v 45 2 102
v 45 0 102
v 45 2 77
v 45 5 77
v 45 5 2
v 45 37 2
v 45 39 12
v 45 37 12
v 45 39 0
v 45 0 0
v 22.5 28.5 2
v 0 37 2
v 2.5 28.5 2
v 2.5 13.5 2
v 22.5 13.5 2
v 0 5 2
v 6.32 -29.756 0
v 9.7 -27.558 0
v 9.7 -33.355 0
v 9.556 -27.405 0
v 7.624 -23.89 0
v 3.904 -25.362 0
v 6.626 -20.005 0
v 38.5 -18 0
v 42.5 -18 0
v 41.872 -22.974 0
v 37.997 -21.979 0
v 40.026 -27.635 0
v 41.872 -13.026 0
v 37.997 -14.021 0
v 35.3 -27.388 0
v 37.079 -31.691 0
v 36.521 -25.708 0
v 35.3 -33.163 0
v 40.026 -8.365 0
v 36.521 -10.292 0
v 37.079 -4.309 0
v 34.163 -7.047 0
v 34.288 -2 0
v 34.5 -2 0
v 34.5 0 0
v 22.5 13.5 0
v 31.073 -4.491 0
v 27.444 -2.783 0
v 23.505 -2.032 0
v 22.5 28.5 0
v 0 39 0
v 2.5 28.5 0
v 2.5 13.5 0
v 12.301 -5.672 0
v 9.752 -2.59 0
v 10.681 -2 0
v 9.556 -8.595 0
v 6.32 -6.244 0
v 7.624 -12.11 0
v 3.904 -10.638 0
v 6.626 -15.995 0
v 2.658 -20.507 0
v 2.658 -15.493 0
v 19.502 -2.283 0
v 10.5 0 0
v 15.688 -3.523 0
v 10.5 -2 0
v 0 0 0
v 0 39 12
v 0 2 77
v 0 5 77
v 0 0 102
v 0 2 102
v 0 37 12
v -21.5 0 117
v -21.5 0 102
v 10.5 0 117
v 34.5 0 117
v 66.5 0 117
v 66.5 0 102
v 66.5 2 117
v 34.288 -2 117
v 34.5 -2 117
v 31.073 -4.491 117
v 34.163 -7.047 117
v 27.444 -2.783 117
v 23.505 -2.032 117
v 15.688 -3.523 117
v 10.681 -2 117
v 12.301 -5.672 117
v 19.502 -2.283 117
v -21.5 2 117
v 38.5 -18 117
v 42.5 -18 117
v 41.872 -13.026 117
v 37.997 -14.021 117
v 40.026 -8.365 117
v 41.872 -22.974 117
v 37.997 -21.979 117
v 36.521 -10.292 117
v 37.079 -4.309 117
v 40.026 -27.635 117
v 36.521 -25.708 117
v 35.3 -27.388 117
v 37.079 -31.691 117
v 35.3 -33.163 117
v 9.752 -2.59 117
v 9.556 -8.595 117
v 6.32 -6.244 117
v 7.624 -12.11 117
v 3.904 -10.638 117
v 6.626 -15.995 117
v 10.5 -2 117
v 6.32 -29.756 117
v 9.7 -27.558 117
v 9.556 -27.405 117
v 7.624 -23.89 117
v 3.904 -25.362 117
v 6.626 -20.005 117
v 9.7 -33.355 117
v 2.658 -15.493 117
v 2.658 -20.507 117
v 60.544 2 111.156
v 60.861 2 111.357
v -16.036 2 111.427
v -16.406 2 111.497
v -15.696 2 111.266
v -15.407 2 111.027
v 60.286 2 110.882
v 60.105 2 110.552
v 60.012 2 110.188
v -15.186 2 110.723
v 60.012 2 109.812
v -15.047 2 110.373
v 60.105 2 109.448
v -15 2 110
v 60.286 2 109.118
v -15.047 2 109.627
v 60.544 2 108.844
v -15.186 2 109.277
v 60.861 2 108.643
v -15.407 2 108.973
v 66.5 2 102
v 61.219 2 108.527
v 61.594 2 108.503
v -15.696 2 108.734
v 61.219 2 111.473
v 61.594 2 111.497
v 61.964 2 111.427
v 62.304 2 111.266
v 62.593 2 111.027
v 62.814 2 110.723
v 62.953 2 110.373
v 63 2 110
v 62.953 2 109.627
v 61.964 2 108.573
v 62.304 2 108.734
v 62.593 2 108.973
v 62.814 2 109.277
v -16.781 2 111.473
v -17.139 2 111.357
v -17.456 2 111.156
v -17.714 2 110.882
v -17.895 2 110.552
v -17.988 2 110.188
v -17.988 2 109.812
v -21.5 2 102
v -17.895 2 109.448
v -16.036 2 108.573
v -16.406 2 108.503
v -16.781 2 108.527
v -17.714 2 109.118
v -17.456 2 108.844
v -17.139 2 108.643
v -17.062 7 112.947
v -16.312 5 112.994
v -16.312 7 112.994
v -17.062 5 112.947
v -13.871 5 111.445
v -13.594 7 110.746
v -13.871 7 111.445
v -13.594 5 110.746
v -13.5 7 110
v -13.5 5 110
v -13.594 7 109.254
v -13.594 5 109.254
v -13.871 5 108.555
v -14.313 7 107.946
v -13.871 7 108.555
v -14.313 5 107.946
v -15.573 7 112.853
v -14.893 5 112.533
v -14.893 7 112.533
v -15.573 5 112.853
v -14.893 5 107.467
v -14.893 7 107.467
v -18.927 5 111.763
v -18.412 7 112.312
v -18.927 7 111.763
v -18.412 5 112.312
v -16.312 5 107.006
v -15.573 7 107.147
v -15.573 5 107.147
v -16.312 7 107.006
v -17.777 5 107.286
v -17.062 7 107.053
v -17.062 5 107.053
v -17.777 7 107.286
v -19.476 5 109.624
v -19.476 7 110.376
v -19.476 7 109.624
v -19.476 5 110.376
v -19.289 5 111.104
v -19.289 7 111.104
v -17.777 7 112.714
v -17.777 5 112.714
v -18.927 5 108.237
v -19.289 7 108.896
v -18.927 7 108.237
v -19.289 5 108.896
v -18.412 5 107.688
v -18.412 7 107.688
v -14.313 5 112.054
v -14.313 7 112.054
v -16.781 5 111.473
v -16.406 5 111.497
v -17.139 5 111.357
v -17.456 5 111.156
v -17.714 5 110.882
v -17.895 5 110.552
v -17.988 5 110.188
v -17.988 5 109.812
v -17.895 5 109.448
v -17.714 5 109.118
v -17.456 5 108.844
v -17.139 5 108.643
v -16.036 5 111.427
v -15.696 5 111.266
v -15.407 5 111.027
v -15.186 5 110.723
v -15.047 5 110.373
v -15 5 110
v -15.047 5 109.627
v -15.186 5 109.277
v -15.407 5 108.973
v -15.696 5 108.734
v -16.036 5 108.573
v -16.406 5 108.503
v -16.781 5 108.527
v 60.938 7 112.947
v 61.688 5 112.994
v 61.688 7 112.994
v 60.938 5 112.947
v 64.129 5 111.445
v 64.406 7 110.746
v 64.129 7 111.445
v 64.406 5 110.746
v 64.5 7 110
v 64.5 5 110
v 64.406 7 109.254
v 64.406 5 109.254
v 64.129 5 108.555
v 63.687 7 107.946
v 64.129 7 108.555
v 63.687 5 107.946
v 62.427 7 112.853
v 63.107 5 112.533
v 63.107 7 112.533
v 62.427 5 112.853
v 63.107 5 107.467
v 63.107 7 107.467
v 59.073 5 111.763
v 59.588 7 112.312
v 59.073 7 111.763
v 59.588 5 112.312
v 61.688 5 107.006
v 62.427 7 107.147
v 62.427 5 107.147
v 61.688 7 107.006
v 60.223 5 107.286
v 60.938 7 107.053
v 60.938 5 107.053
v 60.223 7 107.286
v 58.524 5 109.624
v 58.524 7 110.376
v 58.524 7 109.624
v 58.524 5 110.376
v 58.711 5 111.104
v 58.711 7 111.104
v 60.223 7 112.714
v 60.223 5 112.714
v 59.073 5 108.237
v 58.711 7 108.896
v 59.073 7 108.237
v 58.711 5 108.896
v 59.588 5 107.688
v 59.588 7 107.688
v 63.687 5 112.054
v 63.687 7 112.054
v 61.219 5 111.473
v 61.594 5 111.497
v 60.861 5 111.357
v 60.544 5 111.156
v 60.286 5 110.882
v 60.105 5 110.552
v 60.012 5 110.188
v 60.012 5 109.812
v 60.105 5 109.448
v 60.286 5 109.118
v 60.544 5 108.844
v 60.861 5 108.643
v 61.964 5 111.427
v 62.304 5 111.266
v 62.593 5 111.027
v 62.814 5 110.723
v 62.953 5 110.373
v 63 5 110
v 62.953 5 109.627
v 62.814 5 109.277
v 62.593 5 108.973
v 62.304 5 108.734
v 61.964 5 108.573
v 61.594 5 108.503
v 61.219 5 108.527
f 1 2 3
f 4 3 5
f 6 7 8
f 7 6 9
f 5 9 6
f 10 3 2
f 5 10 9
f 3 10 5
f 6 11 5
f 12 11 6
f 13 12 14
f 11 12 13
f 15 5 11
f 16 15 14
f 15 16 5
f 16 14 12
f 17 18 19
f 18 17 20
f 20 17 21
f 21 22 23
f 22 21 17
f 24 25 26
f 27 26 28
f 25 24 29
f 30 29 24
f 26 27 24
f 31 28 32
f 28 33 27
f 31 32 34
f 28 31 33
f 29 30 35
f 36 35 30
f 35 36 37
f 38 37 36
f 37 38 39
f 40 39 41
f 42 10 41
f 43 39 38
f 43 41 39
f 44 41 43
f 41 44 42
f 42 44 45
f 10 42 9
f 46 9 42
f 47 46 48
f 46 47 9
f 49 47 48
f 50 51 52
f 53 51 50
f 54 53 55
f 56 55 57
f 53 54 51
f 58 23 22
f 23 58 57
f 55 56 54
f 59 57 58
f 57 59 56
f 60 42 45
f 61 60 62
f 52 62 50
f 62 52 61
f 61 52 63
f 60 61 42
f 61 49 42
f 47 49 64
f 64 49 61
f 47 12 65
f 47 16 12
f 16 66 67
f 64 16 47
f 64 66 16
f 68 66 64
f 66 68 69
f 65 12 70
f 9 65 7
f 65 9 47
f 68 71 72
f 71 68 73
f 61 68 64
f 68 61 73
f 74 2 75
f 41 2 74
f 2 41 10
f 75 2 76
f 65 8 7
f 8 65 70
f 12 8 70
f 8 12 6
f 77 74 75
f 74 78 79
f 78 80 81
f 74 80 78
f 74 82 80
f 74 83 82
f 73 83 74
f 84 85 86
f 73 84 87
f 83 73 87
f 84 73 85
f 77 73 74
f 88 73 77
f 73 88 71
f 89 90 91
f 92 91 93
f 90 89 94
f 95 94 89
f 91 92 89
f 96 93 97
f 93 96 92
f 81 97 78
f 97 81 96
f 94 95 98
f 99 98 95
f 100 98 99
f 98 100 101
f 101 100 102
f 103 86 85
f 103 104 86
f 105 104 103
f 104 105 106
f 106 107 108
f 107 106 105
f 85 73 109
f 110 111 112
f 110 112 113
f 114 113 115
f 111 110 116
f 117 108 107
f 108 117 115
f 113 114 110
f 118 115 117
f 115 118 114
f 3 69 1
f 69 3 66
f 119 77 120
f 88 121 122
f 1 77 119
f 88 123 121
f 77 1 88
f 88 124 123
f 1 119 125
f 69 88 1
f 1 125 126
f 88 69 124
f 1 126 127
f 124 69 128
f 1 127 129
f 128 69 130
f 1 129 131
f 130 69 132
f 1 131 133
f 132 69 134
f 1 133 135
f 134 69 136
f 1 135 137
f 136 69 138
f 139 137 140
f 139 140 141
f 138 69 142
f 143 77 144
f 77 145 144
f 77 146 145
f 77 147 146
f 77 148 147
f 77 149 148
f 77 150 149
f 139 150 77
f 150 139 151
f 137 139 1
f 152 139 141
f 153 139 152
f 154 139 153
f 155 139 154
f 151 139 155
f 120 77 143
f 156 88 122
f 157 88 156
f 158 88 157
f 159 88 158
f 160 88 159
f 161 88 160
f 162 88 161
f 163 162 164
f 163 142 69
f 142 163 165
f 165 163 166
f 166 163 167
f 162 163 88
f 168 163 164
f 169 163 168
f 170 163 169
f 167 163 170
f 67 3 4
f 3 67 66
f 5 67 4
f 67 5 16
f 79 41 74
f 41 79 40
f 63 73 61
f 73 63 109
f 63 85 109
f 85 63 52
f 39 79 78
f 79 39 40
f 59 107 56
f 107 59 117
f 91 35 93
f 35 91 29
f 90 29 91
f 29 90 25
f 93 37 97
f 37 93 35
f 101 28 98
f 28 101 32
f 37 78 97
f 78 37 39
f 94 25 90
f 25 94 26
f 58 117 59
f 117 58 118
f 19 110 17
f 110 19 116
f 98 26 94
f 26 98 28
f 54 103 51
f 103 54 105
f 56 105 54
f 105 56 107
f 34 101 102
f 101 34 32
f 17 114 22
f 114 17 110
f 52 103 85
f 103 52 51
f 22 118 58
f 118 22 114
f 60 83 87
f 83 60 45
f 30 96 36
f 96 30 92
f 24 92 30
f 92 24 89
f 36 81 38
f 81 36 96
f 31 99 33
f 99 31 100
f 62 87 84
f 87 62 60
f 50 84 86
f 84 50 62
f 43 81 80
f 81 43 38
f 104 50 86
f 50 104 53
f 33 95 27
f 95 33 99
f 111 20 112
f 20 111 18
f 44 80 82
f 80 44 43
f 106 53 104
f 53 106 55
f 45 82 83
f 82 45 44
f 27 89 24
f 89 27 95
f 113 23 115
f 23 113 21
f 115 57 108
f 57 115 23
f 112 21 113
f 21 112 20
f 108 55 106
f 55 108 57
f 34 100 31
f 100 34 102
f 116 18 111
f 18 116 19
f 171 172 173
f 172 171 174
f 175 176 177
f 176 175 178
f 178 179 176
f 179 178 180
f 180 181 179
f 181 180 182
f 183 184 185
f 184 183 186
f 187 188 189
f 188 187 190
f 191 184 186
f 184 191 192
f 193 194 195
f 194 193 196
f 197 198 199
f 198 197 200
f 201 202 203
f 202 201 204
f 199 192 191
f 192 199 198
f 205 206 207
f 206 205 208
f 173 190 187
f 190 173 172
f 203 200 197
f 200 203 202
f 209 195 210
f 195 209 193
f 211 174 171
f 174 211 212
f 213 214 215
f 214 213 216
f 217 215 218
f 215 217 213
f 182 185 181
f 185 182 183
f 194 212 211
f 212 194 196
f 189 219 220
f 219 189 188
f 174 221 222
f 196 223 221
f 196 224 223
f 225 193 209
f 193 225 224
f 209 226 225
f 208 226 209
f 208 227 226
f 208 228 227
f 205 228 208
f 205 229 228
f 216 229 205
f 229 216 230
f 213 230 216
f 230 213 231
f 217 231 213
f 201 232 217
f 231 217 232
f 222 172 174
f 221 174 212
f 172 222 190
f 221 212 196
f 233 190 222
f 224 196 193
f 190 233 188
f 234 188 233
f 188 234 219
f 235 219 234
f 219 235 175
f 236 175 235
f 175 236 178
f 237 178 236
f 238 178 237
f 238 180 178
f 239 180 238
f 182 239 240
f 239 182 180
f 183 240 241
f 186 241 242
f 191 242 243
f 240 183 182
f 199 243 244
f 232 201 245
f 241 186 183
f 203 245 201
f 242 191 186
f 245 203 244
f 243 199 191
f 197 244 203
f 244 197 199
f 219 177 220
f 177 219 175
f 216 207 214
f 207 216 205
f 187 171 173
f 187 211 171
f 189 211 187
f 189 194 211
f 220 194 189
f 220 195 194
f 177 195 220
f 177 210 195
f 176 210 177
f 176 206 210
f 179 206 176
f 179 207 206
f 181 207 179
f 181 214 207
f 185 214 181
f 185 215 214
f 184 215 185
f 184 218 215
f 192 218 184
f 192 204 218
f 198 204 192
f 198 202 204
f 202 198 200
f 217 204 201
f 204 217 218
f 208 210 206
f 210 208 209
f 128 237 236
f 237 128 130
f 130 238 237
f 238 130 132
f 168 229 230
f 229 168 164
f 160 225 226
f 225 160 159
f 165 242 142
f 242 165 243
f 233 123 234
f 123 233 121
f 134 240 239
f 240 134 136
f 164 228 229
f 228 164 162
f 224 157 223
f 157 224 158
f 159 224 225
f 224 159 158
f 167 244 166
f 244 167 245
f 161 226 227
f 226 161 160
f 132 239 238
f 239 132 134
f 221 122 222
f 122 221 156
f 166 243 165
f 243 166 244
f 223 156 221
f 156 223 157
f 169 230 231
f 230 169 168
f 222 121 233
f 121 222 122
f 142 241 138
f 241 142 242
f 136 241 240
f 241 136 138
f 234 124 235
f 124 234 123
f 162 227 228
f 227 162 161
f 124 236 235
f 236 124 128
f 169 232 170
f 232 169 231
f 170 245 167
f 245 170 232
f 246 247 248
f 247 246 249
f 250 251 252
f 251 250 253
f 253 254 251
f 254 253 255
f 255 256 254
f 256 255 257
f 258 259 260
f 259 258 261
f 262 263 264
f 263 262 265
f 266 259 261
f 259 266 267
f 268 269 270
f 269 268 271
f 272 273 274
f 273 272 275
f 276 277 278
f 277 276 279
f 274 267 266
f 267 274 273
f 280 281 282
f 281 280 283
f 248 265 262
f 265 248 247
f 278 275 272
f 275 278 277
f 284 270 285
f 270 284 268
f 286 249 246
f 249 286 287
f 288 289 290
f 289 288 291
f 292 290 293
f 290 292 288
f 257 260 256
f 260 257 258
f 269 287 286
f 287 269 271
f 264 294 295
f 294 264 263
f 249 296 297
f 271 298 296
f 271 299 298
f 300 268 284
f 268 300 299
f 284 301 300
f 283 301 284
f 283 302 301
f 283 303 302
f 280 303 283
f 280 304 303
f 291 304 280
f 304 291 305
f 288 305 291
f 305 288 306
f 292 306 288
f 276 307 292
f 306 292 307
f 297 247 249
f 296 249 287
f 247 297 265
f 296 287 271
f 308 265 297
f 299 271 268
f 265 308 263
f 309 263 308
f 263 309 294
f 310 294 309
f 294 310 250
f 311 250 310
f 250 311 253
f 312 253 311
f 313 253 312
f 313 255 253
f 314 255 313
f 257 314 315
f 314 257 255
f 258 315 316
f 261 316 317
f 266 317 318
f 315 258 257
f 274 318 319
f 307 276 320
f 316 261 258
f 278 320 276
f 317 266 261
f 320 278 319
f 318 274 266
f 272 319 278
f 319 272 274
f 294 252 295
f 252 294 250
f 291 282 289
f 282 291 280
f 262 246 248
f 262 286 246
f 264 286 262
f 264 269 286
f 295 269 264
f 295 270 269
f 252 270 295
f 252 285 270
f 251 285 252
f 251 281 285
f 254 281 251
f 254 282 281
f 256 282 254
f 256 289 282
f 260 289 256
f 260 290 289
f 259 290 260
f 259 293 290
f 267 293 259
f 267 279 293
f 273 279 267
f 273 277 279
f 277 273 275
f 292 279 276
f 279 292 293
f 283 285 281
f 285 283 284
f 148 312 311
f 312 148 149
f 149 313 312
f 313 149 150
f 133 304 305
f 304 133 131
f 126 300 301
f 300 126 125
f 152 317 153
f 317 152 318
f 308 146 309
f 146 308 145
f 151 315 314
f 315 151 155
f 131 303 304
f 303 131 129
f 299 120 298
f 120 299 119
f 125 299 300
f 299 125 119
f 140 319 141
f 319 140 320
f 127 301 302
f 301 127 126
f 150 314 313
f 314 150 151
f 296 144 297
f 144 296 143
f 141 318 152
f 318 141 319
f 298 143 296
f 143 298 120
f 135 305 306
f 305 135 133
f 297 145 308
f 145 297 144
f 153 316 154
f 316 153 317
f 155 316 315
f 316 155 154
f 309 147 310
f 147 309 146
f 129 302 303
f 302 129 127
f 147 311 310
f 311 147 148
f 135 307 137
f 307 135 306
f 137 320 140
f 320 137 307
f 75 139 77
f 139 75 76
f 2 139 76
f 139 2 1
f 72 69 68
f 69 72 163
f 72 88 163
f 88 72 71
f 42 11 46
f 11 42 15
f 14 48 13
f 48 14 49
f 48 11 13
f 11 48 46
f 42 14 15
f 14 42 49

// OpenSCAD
$fn = 25;

thickness = 2;
height = 115;

top_width = 88;
top_height = 15;

bottom_width = 45;
bottom_height = 10;
bottom_depth = 35;
bottom_cutout = 3;
bottom_cutout_height = 75;

pipe_radius = 16;

keyhole_bottom_width = 6;
keyhole_top_width = 3;
keyhole_depth = 3;
keyhole_height = 110;
keyhole_spacing = 78;

encoder_cutout_length = 20;
encoder_cutout_width = 15;
// Encoder cutout is not perfectly positioned, but it has enough margin that cables can fit.
// encoder_cutout_off_center = 5;

module base() {
    cube([bottom_width, bottom_depth+2*thickness, thickness]);
    translate([0, bottom_depth+thickness, 0])
        cube([bottom_width, thickness, bottom_height+thickness]);
    cube([bottom_width, thickness, height+thickness]);
    translate([0, thickness,0])
        cube([bottom_width, bottom_cutout, bottom_cutout_height+thickness]);
    translate([bottom_width/2 - pipe_radius*.75, -thickness, 0])
        cube([pipe_radius*1.5, thickness, height+thickness]);
}

module top() {
    cube([top_width, thickness, top_height]);
}

module pipe_clamp() {
    difference() {
        cylinder(h = height+thickness, r = pipe_radius + 2*thickness);
        cylinder(h = height+thickness, r = pipe_radius);
        cutout_width = pipe_radius*1.6;
        translate([-cutout_width/2, -pipe_radius-5*thickness, 0])
            cube([cutout_width, 10*thickness, height+thickness]);
    }
}

module keyhole() {
    translate([0,2*thickness+keyhole_depth, 0])
    rotate(v=[1,0,0], a=90) {
        cylinder(h = thickness, d = keyhole_bottom_width);
        cylinder(h = thickness + keyhole_depth, d = keyhole_top_width);  
    }
}

module encoder_cable_cutout() {
    translate([bottom_width/2-encoder_cutout_length,
                bottom_cutout + (bottom_depth-bottom_cutout)/2 - encoder_cutout_width/2 + thickness, 0])
        cube([encoder_cutout_length, encoder_cutout_width, 5*thickness]);
}

module main() {
    base();
    translate([-top_width/2+bottom_width/2, 0, height-top_height+thickness])
        top();
    translate([bottom_width/2, -pipe_radius-thickness, 0])
        pipe_clamp();
    translate([bottom_width/2-keyhole_spacing/2, 0, keyhole_height,])
        keyhole();
    translate([bottom_width/2+keyhole_spacing/2, 0, keyhole_height,])
        keyhole();
}

difference() {
    main();
    encoder_cable_cutout();
}
